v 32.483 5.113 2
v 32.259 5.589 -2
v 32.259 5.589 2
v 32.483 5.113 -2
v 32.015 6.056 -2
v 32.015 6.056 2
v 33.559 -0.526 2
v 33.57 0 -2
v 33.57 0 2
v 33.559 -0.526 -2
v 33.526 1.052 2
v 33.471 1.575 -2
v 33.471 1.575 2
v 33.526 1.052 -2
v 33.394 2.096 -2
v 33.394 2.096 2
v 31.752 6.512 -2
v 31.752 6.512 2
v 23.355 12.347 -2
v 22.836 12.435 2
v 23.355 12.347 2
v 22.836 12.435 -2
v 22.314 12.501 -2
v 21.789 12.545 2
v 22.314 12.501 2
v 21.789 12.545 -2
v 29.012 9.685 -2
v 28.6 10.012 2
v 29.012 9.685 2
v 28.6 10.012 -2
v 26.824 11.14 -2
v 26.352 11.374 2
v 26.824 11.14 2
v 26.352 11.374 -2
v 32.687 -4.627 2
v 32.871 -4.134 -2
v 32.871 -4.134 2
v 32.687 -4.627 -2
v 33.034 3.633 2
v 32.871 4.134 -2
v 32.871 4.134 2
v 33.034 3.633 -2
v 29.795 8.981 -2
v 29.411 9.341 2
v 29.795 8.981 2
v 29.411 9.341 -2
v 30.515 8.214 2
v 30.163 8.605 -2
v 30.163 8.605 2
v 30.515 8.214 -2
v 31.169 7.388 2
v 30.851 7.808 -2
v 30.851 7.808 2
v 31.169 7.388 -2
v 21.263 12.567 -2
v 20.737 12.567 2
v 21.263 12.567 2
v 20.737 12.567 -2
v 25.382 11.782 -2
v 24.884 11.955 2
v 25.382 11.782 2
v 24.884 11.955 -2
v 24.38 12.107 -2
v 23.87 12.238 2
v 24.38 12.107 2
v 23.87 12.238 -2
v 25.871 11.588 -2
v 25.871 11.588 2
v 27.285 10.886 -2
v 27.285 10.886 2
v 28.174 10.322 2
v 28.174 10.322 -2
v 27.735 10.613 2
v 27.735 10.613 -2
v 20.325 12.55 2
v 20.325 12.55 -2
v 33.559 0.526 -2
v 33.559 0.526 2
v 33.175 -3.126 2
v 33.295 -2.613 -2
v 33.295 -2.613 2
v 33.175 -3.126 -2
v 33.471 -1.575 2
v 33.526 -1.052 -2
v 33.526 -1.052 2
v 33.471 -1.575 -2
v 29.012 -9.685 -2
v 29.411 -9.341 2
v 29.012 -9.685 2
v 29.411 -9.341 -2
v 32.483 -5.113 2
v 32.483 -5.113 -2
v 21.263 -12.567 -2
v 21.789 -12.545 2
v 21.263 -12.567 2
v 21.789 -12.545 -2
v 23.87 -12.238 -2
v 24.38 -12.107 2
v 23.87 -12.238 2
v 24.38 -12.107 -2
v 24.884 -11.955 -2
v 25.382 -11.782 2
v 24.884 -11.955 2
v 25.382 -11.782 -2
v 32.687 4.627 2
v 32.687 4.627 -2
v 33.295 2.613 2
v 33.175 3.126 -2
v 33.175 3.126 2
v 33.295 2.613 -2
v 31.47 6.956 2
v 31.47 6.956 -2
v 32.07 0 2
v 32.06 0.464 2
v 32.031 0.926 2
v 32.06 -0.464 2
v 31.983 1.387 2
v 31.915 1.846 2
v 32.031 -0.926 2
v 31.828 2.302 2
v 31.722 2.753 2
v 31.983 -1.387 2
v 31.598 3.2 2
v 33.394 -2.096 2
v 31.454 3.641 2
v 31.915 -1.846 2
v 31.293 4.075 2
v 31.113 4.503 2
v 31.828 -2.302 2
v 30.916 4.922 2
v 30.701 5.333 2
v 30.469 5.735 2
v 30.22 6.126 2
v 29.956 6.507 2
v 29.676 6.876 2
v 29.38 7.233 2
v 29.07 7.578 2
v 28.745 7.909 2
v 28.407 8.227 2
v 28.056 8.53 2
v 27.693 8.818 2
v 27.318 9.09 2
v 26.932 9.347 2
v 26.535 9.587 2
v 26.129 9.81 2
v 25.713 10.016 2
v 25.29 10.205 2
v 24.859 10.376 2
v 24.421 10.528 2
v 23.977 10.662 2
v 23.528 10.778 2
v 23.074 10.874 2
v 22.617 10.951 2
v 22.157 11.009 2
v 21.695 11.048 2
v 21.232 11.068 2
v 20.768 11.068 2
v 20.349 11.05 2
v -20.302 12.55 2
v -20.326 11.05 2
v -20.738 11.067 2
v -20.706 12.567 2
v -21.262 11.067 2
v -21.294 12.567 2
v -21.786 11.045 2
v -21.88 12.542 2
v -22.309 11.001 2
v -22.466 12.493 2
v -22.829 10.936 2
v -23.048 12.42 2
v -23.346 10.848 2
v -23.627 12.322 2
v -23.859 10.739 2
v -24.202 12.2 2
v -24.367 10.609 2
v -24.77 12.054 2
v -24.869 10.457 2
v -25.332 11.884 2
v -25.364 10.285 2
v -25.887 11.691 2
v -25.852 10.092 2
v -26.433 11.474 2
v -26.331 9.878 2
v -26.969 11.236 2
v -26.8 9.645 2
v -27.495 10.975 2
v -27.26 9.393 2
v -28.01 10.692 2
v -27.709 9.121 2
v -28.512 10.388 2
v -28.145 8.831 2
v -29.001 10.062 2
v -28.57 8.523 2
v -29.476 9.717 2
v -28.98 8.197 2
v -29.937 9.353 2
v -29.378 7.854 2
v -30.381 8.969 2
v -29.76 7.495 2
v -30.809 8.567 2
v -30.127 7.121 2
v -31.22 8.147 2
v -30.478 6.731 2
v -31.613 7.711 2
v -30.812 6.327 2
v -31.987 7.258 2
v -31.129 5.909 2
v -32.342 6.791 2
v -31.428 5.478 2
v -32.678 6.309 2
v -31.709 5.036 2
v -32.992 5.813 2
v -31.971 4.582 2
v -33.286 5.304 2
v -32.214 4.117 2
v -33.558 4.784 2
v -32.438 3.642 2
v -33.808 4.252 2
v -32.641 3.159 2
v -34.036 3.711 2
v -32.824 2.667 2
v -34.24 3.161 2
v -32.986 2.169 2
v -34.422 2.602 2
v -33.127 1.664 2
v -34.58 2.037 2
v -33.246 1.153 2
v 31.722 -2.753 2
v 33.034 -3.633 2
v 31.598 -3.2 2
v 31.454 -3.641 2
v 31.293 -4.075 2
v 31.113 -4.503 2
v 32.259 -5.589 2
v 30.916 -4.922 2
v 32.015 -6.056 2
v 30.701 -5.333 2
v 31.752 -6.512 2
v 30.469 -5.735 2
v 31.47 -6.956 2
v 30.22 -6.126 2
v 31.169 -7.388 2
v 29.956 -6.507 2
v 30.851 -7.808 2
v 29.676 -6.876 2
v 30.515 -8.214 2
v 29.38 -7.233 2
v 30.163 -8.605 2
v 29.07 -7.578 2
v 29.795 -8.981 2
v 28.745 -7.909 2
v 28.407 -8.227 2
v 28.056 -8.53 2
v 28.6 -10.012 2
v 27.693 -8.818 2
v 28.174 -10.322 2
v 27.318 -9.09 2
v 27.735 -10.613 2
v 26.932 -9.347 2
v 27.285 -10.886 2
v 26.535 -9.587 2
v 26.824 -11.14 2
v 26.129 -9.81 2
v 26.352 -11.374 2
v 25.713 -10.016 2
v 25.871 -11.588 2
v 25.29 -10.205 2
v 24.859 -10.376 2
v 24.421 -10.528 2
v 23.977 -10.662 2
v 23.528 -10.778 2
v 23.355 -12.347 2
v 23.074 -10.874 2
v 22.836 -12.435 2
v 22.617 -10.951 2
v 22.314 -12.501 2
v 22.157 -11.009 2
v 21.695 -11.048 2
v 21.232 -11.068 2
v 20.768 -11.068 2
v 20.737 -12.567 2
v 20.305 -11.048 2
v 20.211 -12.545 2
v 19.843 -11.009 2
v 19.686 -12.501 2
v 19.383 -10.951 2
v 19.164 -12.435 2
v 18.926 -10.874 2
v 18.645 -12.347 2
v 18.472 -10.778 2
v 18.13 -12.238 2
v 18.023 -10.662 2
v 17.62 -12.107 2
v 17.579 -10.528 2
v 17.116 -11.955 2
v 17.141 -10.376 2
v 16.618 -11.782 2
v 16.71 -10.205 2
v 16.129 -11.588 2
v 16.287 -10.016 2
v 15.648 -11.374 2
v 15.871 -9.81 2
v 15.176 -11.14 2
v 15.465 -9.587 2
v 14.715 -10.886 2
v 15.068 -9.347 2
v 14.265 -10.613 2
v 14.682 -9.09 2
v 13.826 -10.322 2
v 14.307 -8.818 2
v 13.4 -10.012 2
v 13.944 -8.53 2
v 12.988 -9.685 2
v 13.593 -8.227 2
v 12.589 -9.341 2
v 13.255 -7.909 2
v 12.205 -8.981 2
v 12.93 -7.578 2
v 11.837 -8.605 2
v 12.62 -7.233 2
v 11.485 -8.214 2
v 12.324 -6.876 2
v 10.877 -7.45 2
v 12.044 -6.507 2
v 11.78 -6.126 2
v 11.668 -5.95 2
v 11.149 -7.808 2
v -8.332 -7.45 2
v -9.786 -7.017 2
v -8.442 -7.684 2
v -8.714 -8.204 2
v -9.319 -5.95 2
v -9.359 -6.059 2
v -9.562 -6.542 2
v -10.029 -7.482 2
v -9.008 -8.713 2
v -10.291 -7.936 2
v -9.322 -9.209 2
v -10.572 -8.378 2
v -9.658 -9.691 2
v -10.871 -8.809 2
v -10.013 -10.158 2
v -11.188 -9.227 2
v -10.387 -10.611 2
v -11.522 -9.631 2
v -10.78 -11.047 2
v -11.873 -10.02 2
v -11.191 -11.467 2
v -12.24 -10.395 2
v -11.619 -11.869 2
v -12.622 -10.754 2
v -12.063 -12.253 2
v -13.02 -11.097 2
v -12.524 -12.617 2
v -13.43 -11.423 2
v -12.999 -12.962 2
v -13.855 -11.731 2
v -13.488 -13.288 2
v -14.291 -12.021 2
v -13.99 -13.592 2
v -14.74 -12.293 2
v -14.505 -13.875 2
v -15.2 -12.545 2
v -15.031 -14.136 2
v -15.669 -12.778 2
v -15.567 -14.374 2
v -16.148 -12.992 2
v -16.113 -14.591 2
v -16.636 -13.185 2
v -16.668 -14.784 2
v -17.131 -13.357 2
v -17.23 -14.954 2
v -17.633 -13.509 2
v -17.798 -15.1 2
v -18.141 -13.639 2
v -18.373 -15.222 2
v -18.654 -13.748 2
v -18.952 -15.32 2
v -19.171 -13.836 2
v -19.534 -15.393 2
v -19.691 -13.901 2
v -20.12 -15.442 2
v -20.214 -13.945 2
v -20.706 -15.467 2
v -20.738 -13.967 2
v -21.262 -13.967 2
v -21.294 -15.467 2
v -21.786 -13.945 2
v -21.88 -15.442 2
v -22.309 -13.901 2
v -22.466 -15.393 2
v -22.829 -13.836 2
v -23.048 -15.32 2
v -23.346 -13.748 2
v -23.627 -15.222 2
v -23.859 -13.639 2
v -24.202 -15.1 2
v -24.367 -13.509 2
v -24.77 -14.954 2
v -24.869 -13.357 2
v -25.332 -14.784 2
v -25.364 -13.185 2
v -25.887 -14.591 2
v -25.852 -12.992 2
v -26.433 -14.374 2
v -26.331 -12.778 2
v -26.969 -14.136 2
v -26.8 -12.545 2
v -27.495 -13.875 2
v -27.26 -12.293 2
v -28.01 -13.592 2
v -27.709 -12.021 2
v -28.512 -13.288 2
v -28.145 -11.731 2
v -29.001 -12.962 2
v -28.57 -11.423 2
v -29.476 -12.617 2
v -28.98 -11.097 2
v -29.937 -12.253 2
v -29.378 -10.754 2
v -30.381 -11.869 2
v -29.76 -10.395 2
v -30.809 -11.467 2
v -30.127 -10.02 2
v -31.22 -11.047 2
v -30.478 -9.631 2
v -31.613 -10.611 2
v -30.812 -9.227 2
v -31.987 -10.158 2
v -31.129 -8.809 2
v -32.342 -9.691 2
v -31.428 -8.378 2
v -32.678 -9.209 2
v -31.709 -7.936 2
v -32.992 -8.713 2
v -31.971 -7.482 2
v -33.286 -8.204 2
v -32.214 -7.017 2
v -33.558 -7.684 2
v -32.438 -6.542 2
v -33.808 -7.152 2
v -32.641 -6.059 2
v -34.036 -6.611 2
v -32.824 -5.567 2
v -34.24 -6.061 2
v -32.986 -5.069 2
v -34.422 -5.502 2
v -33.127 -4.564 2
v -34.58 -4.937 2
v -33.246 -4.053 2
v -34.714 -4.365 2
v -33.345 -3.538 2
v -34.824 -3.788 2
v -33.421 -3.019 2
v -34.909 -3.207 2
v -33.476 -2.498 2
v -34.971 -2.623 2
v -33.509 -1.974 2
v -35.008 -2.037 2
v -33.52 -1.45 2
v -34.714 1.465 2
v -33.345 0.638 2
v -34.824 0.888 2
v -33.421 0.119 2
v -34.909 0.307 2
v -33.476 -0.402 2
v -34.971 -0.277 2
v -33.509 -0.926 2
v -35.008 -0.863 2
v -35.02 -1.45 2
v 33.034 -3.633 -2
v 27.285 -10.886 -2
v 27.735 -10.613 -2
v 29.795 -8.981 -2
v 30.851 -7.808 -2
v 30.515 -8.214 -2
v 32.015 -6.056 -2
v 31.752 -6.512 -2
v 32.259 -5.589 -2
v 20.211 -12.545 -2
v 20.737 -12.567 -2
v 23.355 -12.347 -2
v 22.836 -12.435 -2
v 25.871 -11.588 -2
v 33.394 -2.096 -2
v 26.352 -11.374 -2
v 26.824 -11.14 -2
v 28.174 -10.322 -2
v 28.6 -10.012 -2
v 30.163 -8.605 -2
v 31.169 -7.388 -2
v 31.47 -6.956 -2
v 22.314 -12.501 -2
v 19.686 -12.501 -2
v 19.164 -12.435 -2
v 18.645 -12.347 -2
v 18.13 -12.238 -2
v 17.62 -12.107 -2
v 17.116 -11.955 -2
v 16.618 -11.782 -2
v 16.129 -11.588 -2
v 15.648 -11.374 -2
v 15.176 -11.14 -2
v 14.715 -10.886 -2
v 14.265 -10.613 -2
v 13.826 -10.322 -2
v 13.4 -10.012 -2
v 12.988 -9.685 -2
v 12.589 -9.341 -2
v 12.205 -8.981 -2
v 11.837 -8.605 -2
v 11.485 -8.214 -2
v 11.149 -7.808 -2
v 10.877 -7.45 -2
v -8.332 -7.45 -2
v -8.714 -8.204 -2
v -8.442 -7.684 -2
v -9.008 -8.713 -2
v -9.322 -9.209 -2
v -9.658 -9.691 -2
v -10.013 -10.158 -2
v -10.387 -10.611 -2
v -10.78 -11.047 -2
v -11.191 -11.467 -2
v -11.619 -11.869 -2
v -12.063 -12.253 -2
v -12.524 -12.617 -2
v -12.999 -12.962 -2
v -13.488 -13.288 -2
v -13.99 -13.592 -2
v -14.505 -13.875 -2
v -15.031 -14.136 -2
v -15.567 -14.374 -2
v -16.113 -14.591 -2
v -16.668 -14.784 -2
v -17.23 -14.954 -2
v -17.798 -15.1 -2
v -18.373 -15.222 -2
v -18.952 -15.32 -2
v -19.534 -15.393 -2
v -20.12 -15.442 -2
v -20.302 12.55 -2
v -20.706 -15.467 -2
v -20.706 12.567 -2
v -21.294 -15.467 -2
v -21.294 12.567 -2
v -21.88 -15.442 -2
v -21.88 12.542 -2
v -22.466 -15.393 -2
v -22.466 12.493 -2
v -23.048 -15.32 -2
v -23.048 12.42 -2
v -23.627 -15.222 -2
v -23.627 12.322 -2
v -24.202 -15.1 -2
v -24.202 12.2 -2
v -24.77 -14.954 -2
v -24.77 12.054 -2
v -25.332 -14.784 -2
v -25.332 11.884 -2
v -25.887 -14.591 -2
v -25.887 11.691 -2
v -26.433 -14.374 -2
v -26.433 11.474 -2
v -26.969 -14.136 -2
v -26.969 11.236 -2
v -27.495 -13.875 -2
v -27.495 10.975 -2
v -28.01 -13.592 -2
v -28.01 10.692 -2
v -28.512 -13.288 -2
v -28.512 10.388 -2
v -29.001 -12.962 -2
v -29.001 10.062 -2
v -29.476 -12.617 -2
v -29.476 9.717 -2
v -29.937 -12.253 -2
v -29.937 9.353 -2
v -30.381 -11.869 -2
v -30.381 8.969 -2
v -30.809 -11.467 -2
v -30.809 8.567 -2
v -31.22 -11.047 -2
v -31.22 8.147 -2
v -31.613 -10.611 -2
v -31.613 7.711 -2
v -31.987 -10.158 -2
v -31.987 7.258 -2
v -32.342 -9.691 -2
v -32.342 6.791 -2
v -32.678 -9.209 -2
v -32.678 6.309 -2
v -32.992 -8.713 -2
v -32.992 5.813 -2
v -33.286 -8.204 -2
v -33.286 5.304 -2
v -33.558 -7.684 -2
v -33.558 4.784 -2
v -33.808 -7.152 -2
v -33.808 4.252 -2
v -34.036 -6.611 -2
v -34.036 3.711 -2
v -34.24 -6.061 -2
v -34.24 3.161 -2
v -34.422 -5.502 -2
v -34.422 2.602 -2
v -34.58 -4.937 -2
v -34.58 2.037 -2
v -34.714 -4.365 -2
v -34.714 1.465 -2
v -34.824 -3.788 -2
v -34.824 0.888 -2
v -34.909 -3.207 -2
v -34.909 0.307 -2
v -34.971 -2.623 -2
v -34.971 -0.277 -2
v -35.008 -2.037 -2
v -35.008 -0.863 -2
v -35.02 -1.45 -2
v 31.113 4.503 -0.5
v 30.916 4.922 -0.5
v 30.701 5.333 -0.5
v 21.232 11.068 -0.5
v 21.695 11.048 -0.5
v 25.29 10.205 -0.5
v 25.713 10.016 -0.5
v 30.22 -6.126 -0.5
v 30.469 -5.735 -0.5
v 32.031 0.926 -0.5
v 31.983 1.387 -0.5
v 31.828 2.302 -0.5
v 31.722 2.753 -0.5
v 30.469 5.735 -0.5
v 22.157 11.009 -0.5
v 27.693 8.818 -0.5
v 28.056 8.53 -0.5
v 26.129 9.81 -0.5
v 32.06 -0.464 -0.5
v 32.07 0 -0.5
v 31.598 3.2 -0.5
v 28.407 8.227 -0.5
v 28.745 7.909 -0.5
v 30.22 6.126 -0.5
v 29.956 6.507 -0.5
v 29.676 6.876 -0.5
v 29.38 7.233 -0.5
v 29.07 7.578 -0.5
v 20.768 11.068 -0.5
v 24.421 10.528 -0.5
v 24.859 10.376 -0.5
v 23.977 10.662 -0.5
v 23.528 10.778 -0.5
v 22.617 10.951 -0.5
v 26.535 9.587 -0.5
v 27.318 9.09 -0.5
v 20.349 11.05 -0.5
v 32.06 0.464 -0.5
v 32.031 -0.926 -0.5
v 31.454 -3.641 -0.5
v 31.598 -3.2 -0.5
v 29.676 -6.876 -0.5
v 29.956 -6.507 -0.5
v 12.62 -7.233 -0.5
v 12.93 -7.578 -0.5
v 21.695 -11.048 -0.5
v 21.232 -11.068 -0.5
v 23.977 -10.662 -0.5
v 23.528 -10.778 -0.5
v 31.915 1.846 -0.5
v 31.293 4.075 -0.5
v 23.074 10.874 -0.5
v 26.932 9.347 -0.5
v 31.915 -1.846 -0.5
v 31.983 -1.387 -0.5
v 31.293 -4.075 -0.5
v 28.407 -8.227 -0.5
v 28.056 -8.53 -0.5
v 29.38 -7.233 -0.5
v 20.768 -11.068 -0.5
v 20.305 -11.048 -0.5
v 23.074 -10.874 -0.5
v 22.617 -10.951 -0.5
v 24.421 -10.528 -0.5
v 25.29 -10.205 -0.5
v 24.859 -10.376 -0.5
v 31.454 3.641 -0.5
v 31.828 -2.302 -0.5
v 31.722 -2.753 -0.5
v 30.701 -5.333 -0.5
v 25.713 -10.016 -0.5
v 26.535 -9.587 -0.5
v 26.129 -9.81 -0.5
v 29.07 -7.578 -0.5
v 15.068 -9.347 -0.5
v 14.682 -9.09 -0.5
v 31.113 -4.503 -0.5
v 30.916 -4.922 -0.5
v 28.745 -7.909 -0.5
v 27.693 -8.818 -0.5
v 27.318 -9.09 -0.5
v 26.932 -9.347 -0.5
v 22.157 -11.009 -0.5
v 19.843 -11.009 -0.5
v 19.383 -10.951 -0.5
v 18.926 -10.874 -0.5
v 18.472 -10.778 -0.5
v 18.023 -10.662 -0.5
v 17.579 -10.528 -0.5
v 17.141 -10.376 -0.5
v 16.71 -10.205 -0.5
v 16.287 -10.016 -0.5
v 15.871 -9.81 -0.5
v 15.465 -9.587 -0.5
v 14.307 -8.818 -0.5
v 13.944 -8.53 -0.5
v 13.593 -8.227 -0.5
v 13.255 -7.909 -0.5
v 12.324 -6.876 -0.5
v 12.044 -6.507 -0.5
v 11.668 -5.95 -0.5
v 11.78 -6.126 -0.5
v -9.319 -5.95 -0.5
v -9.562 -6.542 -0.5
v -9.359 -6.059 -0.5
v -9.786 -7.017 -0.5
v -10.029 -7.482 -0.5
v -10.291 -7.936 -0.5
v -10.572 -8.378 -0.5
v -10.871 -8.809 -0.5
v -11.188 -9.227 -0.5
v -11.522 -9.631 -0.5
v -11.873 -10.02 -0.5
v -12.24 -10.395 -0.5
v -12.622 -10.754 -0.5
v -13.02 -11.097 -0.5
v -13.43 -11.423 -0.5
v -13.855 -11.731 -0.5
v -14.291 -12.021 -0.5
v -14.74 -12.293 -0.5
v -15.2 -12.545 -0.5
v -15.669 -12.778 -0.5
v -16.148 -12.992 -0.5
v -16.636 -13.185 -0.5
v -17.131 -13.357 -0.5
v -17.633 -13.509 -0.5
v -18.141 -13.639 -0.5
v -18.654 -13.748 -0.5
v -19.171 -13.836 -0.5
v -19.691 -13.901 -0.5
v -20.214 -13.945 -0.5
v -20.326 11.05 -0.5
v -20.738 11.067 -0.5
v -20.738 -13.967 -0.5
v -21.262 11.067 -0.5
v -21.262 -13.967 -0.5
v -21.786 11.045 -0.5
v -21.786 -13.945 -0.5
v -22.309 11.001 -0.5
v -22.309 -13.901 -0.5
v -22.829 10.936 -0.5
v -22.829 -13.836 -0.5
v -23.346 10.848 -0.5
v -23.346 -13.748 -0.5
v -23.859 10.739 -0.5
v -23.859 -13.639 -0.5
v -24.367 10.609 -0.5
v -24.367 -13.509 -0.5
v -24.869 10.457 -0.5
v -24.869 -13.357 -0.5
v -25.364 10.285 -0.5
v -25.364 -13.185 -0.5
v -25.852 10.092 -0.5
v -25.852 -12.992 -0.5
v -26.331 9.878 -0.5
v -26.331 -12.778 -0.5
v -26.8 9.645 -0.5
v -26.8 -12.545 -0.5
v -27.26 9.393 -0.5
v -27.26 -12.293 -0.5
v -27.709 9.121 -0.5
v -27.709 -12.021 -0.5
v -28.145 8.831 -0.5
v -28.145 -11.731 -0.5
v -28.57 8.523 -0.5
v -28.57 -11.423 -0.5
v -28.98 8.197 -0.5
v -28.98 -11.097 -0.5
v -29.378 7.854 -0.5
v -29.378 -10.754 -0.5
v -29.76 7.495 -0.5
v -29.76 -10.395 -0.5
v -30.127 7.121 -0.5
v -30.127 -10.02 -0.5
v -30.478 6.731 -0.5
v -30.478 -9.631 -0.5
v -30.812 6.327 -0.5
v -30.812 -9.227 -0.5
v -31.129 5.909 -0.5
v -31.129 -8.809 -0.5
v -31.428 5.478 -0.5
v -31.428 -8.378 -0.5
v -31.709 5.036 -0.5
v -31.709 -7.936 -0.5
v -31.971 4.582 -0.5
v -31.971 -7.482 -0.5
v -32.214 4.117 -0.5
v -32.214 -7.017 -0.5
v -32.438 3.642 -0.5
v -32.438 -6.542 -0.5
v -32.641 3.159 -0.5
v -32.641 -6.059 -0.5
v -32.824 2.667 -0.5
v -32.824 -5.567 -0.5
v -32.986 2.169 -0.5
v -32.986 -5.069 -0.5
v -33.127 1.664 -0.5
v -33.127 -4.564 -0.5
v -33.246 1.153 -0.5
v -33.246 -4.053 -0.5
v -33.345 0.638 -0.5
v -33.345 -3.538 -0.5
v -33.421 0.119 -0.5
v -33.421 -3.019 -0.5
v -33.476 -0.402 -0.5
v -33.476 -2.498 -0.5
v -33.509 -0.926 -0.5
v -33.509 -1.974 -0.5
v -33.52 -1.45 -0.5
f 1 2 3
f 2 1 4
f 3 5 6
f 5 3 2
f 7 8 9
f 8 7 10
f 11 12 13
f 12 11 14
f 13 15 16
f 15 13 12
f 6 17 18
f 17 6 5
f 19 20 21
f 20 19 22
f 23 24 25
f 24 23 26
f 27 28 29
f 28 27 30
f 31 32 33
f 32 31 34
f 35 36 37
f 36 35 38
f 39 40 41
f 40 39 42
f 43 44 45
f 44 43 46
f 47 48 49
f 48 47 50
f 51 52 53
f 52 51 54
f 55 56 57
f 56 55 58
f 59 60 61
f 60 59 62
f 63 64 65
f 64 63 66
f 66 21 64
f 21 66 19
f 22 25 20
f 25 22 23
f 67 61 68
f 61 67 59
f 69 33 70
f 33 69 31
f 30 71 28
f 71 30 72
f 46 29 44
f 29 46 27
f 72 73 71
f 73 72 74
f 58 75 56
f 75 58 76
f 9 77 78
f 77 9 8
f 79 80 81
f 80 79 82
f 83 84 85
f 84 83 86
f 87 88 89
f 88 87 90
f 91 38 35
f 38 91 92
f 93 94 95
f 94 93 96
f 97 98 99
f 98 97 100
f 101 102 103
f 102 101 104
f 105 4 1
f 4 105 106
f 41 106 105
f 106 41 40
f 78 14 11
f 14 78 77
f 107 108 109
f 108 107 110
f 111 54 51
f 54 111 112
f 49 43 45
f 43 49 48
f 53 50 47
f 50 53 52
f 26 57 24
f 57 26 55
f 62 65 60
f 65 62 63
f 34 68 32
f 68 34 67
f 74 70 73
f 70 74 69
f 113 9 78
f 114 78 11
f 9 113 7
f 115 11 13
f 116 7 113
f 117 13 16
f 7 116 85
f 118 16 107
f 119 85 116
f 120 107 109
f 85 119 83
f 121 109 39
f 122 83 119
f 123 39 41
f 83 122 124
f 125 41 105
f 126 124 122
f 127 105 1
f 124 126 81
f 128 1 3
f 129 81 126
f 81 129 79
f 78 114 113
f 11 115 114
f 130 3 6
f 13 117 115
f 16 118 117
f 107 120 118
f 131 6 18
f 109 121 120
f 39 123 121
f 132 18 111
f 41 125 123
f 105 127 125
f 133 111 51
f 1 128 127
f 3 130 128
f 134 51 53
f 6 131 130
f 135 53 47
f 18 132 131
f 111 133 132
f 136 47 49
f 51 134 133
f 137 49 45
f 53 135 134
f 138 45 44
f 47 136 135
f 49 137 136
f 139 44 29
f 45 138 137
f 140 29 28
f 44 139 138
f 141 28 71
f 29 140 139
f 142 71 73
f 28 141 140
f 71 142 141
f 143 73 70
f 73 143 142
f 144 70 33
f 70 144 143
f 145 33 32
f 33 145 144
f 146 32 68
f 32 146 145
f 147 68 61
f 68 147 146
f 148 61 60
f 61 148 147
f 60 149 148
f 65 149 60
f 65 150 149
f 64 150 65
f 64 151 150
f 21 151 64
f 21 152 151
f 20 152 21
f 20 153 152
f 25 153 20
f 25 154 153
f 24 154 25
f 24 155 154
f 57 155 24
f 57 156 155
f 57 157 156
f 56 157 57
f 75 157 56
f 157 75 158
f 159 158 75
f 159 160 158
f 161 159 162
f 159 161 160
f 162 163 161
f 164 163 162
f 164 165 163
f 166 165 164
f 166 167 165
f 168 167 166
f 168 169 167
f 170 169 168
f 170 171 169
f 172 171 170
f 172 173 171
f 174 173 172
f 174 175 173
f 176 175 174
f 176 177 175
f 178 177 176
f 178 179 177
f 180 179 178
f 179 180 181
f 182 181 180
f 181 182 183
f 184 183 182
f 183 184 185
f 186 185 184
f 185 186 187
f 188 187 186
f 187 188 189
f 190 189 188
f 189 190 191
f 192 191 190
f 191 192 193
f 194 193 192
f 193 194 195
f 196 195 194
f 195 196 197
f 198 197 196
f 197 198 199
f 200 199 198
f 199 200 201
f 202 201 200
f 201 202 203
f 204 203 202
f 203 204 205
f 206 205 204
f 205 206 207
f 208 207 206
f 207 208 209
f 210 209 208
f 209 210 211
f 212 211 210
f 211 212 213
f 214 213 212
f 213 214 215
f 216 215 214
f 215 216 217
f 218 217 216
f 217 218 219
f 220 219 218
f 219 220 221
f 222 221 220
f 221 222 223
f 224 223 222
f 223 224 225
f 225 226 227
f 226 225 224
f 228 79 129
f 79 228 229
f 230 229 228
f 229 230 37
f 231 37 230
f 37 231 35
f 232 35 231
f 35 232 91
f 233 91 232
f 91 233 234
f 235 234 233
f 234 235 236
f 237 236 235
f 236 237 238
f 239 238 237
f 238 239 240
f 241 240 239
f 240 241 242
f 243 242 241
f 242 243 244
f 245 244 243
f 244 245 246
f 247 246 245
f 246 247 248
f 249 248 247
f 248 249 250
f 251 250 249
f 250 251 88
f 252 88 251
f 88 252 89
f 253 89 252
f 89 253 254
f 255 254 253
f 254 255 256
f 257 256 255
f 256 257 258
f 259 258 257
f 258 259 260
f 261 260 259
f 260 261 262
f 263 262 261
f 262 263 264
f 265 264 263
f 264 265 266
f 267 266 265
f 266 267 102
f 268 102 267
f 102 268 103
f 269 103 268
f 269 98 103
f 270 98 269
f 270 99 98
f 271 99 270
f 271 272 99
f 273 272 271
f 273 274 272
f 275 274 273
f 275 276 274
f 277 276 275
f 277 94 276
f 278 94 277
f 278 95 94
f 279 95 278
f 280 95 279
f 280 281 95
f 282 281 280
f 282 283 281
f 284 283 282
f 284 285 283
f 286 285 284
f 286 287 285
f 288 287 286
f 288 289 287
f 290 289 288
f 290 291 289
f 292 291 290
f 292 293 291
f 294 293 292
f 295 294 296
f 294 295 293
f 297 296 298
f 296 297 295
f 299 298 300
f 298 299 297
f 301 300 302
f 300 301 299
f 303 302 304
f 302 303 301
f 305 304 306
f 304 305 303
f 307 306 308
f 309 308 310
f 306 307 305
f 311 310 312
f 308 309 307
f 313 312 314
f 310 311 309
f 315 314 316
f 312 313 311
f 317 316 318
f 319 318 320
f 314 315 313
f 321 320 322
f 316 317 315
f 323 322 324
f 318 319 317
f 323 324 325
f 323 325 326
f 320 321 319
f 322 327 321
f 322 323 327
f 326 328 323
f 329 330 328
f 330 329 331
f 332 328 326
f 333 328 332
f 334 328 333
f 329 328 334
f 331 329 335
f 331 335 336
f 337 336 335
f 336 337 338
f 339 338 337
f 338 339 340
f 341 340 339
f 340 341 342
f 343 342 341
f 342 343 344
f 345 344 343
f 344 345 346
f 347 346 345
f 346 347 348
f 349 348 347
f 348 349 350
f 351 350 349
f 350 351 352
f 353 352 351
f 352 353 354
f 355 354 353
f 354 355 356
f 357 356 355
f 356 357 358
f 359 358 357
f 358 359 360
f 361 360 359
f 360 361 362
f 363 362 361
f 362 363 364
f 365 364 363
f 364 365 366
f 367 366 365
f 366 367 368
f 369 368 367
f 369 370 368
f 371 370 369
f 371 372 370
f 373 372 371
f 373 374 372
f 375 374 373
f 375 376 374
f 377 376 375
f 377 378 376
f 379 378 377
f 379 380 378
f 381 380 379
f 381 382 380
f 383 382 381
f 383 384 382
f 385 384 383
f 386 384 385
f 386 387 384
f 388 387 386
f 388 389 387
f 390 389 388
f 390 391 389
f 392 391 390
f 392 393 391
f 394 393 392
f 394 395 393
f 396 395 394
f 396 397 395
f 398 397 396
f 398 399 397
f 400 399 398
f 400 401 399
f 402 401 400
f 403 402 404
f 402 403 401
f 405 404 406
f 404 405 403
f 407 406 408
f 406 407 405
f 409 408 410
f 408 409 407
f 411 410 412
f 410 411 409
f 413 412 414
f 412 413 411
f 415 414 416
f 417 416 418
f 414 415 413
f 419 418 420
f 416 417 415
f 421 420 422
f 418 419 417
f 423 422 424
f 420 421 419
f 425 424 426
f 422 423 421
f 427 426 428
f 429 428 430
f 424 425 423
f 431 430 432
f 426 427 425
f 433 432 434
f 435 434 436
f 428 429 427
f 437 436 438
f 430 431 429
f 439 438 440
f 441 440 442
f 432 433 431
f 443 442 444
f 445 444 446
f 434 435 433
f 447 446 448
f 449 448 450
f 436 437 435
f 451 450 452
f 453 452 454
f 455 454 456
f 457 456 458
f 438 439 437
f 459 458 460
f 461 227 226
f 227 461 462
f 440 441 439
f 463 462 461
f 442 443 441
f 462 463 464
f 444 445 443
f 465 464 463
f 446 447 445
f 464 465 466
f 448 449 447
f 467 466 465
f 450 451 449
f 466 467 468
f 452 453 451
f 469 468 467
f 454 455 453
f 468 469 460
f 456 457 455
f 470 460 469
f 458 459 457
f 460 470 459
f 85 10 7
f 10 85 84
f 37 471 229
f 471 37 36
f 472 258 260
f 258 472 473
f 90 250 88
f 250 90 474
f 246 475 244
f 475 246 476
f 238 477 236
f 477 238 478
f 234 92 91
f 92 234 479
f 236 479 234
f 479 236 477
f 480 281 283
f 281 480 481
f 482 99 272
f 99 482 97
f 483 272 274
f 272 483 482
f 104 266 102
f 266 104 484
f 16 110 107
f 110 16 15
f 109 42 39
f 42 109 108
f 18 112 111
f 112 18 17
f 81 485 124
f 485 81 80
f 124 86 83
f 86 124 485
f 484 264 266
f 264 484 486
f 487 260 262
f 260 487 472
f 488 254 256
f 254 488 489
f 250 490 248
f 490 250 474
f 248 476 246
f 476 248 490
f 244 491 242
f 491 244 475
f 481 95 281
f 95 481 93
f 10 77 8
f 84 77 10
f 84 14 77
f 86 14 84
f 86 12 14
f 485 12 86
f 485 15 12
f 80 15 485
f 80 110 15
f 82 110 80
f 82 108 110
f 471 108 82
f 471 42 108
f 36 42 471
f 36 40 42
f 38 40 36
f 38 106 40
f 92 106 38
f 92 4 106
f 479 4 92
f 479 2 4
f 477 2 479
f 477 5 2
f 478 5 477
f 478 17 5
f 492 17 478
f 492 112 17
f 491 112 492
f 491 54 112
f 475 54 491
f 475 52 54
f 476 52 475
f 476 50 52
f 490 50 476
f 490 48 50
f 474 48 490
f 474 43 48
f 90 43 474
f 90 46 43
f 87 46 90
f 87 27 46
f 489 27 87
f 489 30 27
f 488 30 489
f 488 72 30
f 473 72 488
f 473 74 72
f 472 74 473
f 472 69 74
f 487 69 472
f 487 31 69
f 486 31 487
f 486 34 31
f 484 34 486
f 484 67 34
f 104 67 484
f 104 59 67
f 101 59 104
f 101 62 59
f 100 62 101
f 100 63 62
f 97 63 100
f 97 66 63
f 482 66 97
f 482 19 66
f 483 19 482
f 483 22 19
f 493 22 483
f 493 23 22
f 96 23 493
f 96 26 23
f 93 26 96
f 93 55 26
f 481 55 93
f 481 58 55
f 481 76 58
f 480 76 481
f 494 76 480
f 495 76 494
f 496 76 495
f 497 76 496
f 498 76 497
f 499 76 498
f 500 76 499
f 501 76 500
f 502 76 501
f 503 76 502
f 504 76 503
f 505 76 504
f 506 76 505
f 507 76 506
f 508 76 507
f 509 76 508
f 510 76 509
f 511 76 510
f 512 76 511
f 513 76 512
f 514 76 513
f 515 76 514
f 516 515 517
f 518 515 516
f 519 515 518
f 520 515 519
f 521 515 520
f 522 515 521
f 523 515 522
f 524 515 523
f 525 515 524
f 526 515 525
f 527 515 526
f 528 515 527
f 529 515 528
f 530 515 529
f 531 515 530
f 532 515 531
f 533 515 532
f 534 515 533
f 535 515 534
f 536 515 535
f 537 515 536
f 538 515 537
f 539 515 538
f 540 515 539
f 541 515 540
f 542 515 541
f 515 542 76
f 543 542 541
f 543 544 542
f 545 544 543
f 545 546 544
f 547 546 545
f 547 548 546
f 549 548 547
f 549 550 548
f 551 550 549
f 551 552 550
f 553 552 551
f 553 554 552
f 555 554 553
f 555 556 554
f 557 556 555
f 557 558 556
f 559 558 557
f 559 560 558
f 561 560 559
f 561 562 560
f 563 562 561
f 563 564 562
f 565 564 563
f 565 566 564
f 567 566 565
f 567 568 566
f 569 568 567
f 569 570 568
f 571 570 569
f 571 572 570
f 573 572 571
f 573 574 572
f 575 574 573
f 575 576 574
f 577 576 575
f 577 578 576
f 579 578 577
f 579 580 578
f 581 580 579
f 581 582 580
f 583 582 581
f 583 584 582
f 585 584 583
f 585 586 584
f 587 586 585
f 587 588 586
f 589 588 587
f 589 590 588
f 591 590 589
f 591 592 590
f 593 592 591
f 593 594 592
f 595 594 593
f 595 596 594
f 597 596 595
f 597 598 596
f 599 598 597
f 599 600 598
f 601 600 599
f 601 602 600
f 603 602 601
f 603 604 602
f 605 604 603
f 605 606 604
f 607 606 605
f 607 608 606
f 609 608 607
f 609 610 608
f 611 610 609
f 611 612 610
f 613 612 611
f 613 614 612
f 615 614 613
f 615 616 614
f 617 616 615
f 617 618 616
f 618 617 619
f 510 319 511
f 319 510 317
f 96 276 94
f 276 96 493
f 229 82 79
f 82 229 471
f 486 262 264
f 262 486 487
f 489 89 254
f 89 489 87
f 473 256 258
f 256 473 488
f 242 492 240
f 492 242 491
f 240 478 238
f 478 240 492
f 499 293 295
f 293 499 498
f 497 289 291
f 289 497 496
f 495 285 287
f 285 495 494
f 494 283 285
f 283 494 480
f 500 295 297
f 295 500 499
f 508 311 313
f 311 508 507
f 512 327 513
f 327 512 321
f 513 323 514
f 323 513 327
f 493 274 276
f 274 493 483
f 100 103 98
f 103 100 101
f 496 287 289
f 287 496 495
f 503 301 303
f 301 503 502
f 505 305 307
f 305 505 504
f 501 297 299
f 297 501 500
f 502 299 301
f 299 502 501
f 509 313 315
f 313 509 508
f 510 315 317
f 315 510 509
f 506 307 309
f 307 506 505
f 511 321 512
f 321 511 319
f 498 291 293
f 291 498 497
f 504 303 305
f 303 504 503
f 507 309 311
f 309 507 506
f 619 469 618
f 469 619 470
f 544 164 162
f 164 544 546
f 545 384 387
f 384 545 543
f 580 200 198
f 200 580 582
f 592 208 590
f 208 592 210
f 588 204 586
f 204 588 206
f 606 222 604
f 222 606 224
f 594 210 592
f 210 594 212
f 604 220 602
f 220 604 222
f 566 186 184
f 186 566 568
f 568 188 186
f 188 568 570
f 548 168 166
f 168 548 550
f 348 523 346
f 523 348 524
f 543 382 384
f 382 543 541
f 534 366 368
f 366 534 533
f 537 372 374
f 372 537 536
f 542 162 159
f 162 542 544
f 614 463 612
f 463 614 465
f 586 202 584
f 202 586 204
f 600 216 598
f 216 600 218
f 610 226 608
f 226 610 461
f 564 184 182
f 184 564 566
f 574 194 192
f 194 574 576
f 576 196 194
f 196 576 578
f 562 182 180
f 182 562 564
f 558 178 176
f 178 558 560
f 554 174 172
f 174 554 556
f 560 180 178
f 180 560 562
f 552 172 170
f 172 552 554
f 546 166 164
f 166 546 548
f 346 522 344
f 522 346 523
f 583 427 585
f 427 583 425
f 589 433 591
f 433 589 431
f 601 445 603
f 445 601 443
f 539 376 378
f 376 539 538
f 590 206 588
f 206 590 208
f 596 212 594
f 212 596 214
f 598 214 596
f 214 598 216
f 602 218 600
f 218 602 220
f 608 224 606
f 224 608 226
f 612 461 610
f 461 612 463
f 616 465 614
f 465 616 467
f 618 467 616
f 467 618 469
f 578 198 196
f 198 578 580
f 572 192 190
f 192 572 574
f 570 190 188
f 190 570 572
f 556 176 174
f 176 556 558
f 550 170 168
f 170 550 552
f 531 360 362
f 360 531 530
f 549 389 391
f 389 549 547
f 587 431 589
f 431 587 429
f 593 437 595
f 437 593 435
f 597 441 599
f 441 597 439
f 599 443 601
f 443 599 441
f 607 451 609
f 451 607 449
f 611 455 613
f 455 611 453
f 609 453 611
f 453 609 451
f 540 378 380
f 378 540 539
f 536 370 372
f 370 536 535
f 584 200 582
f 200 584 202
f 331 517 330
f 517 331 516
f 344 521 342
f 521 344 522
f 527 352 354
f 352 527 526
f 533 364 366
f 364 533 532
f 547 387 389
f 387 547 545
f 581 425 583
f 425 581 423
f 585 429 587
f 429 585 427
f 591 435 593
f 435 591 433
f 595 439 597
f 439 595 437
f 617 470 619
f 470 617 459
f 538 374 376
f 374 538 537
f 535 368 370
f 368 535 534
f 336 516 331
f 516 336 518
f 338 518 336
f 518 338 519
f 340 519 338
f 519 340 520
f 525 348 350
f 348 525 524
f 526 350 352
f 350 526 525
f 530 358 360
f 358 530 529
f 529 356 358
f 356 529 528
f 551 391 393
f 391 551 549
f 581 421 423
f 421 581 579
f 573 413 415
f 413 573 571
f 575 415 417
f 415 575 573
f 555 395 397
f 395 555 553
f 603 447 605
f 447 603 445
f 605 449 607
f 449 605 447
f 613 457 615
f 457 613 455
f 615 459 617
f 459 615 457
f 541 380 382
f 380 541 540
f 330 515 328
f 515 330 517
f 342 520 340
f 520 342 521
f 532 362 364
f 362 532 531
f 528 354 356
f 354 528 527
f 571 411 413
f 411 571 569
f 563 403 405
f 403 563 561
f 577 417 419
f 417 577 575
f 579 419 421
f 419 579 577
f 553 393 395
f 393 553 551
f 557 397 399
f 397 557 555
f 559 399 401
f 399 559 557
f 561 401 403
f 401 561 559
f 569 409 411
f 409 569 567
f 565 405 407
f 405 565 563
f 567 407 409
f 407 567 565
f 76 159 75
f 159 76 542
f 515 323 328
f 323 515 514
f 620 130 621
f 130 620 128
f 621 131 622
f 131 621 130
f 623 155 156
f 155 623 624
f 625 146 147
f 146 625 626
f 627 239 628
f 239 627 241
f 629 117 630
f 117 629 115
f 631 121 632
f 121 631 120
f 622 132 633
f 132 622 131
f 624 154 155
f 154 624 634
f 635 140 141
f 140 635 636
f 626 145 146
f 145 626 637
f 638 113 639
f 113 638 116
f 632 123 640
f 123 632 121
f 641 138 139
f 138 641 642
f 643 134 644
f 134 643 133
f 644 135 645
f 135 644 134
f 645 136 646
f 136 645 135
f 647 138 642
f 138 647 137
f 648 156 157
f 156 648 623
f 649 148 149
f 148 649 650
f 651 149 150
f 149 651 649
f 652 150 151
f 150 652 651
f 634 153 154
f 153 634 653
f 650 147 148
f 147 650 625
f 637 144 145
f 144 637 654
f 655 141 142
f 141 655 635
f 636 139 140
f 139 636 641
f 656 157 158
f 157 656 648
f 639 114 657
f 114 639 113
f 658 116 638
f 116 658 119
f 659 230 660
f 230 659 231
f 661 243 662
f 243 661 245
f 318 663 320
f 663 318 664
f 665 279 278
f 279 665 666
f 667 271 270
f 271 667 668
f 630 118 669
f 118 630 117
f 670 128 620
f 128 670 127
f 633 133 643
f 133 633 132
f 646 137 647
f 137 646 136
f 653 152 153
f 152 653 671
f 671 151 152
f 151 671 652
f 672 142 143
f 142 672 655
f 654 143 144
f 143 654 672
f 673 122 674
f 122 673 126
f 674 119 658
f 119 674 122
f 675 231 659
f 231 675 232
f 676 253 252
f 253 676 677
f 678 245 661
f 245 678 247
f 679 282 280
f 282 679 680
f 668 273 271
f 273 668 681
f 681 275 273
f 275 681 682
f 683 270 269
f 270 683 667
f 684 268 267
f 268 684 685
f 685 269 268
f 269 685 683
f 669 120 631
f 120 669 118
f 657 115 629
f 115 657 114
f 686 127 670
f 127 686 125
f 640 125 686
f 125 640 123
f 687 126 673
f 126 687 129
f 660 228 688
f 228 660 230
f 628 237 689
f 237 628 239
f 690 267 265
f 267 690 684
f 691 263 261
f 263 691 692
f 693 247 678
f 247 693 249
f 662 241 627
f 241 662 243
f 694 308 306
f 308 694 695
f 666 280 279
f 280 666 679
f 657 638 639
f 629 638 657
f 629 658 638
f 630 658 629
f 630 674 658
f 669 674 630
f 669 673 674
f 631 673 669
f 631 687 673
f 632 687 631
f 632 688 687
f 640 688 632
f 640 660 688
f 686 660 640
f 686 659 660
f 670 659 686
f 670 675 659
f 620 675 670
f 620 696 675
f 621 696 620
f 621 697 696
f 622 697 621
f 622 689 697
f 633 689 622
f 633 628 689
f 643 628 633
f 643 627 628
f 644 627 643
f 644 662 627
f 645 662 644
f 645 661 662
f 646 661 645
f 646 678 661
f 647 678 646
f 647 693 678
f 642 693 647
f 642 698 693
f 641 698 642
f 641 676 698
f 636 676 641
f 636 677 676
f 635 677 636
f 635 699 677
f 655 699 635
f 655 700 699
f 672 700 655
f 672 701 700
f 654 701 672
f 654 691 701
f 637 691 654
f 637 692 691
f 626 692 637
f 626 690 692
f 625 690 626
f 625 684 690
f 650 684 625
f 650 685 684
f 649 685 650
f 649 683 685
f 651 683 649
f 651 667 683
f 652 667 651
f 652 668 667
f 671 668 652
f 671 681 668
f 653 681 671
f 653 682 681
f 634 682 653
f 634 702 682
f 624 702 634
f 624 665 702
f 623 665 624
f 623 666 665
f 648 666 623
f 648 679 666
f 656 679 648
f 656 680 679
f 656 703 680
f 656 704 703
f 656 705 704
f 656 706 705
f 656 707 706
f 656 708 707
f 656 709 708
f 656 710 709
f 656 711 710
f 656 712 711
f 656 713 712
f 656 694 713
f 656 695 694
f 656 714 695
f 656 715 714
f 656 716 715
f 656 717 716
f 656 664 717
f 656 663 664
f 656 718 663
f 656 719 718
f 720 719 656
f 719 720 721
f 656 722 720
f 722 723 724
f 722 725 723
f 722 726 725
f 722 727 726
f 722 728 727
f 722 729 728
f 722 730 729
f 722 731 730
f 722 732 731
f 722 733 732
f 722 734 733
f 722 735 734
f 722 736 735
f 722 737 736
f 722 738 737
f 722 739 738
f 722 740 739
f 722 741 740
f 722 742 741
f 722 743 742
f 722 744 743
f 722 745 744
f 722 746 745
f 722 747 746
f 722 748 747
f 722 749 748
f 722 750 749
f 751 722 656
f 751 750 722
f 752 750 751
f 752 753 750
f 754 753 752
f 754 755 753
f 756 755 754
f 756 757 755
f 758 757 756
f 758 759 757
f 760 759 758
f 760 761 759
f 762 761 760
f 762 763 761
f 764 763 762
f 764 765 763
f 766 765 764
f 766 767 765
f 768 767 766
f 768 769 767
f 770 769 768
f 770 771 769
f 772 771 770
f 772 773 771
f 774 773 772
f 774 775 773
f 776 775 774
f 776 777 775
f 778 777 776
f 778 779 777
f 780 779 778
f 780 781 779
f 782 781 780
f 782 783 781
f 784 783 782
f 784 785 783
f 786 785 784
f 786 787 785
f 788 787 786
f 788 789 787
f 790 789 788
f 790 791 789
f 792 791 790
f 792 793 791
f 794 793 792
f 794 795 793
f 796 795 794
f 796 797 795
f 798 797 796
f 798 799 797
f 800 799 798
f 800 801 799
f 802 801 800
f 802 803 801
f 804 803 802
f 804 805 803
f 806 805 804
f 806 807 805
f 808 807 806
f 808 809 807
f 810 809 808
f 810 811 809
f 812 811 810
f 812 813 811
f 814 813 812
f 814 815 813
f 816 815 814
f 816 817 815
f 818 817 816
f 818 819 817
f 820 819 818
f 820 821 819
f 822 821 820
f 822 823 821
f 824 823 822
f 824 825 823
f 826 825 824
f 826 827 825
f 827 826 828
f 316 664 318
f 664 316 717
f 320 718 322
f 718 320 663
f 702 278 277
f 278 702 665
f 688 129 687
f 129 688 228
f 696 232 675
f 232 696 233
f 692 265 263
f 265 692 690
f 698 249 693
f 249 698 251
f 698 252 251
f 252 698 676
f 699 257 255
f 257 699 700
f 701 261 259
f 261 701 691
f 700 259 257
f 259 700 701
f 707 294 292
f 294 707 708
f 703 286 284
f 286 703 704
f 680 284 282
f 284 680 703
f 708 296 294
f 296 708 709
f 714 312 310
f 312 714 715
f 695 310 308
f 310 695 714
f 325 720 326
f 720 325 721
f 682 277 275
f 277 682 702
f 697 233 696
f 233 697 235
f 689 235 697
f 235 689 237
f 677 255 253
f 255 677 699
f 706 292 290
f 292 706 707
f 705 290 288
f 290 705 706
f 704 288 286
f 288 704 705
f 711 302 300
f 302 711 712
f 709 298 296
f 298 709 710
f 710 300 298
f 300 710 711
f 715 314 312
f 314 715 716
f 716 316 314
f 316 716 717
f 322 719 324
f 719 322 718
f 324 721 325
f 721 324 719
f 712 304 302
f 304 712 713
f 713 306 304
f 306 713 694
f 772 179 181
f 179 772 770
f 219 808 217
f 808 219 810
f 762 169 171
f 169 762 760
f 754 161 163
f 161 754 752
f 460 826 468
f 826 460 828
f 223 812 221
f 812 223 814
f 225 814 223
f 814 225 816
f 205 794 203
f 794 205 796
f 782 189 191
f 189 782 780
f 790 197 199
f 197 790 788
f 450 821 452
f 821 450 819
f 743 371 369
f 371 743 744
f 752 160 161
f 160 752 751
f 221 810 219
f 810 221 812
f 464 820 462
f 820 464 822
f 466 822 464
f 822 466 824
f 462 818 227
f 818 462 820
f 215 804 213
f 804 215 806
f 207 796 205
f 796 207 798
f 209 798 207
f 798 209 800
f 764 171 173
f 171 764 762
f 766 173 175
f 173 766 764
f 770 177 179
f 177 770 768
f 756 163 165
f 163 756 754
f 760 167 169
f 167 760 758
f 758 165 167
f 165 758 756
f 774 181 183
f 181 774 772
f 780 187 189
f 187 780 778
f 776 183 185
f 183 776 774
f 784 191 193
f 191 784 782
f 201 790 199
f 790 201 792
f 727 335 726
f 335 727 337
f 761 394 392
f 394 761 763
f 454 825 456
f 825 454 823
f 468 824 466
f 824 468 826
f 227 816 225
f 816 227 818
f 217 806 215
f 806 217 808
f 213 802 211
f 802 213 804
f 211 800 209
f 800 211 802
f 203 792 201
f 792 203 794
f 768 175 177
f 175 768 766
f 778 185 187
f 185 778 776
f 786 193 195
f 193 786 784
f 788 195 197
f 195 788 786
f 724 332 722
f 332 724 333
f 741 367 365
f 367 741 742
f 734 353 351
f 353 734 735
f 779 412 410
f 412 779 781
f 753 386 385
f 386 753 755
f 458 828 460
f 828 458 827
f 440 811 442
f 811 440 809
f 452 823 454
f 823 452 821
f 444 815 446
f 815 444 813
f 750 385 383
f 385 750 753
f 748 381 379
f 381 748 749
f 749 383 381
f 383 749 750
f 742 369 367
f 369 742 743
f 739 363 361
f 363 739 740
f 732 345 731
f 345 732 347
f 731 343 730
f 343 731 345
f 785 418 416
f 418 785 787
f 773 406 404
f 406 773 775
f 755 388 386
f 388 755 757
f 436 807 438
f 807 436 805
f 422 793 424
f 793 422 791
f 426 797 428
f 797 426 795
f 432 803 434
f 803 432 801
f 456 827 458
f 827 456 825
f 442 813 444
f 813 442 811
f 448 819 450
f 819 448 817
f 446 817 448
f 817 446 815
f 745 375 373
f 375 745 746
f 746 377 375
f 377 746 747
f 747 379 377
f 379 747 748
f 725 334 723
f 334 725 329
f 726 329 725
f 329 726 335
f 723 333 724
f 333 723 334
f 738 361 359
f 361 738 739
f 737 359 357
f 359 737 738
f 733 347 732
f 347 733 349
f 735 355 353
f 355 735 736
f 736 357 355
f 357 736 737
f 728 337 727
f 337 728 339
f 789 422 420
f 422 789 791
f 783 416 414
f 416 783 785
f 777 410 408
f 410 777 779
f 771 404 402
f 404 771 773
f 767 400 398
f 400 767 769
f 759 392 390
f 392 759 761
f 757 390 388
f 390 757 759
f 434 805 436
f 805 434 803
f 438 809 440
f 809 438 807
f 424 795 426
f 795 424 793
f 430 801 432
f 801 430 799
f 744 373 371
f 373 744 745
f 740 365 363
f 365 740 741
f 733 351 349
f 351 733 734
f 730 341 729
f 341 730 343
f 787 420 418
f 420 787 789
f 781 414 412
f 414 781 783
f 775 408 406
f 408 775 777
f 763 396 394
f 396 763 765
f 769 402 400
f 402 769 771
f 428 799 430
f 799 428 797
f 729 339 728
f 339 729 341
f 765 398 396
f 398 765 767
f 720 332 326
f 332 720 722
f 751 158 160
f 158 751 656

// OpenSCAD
// file: ../../libraries/Minolta16.scad
/**
 * Variables for the Minox16 camera
 **/

$fn = 150;

SPACING = 42;
WALL_THICKNESS = 1.25 + .5;

PLANE_BACK = 1.55;

CART_H = 16.85 + .75;

FEED_D = 19.14;
TAKEUP_D = 22.04;

TAKEUP_OFFSET_Y = -(TAKEUP_D - FEED_D) / 2;

CONNECT_X = SPACING - (TAKEUP_D / 2) - (FEED_D / 2) + 2;
CONNECT_Y = 8.85;
CONNECT_Z = 1.3;

CONNECT_OFFSET_X = ((TAKEUP_D / 2) - (FEED_D / 2)) / 2;
CONNECT_OFFSET_Y = (FEED_D / 2) - (CONNECT_Y / 2) - 5.02;
CONNECT_OFFSET_Z = -(CART_H / 2) + (CONNECT_Z / 2);

FILM_NEG_Y = .75;

FILM_NEG_OFFSET_Y = 8.5;

CAP_LIP_H = 5.92;
CAP_LIP = .56;
CAP_THICKNESS = .5;

TOP_H = 1;
// main file
include <../../libraries/Minolta16.scad>;

time=0;

module minolta16_cart_cover () {
    H = 4;
    
    FOD = FEED_D + 3;
    TOD = TAKEUP_D + 3;
    MID = 17;
    MID_OFFSET = 2.55;

    difference () {
        union () {
            translate([SPACING / 2, 0, 0]) cylinder(r = (FOD + 3) / 2, h = H, center = true);
            translate([-SPACING / 2, TAKEUP_OFFSET_Y, 0]) cylinder(r = (TOD + 3) / 2, h = H, center = true);
            translate([0, MID_OFFSET, 0]) cube([SPACING, MID + 3, H], center = true);
        }
        translate([0, 0, 1.5]) union () {
            translate([SPACING / 2, 0, 0]) cylinder(r = FOD / 2, h = H, center = true);
            translate([-SPACING / 2, TAKEUP_OFFSET_Y, 0]) cylinder(r = TOD / 2, h = H, center = true);
            translate([0, MID_OFFSET, 0]) cube([SPACING, MID, H], center = true);
        }
    }
}

rotate([0, 0, time]) minolta16_cart_cover();
